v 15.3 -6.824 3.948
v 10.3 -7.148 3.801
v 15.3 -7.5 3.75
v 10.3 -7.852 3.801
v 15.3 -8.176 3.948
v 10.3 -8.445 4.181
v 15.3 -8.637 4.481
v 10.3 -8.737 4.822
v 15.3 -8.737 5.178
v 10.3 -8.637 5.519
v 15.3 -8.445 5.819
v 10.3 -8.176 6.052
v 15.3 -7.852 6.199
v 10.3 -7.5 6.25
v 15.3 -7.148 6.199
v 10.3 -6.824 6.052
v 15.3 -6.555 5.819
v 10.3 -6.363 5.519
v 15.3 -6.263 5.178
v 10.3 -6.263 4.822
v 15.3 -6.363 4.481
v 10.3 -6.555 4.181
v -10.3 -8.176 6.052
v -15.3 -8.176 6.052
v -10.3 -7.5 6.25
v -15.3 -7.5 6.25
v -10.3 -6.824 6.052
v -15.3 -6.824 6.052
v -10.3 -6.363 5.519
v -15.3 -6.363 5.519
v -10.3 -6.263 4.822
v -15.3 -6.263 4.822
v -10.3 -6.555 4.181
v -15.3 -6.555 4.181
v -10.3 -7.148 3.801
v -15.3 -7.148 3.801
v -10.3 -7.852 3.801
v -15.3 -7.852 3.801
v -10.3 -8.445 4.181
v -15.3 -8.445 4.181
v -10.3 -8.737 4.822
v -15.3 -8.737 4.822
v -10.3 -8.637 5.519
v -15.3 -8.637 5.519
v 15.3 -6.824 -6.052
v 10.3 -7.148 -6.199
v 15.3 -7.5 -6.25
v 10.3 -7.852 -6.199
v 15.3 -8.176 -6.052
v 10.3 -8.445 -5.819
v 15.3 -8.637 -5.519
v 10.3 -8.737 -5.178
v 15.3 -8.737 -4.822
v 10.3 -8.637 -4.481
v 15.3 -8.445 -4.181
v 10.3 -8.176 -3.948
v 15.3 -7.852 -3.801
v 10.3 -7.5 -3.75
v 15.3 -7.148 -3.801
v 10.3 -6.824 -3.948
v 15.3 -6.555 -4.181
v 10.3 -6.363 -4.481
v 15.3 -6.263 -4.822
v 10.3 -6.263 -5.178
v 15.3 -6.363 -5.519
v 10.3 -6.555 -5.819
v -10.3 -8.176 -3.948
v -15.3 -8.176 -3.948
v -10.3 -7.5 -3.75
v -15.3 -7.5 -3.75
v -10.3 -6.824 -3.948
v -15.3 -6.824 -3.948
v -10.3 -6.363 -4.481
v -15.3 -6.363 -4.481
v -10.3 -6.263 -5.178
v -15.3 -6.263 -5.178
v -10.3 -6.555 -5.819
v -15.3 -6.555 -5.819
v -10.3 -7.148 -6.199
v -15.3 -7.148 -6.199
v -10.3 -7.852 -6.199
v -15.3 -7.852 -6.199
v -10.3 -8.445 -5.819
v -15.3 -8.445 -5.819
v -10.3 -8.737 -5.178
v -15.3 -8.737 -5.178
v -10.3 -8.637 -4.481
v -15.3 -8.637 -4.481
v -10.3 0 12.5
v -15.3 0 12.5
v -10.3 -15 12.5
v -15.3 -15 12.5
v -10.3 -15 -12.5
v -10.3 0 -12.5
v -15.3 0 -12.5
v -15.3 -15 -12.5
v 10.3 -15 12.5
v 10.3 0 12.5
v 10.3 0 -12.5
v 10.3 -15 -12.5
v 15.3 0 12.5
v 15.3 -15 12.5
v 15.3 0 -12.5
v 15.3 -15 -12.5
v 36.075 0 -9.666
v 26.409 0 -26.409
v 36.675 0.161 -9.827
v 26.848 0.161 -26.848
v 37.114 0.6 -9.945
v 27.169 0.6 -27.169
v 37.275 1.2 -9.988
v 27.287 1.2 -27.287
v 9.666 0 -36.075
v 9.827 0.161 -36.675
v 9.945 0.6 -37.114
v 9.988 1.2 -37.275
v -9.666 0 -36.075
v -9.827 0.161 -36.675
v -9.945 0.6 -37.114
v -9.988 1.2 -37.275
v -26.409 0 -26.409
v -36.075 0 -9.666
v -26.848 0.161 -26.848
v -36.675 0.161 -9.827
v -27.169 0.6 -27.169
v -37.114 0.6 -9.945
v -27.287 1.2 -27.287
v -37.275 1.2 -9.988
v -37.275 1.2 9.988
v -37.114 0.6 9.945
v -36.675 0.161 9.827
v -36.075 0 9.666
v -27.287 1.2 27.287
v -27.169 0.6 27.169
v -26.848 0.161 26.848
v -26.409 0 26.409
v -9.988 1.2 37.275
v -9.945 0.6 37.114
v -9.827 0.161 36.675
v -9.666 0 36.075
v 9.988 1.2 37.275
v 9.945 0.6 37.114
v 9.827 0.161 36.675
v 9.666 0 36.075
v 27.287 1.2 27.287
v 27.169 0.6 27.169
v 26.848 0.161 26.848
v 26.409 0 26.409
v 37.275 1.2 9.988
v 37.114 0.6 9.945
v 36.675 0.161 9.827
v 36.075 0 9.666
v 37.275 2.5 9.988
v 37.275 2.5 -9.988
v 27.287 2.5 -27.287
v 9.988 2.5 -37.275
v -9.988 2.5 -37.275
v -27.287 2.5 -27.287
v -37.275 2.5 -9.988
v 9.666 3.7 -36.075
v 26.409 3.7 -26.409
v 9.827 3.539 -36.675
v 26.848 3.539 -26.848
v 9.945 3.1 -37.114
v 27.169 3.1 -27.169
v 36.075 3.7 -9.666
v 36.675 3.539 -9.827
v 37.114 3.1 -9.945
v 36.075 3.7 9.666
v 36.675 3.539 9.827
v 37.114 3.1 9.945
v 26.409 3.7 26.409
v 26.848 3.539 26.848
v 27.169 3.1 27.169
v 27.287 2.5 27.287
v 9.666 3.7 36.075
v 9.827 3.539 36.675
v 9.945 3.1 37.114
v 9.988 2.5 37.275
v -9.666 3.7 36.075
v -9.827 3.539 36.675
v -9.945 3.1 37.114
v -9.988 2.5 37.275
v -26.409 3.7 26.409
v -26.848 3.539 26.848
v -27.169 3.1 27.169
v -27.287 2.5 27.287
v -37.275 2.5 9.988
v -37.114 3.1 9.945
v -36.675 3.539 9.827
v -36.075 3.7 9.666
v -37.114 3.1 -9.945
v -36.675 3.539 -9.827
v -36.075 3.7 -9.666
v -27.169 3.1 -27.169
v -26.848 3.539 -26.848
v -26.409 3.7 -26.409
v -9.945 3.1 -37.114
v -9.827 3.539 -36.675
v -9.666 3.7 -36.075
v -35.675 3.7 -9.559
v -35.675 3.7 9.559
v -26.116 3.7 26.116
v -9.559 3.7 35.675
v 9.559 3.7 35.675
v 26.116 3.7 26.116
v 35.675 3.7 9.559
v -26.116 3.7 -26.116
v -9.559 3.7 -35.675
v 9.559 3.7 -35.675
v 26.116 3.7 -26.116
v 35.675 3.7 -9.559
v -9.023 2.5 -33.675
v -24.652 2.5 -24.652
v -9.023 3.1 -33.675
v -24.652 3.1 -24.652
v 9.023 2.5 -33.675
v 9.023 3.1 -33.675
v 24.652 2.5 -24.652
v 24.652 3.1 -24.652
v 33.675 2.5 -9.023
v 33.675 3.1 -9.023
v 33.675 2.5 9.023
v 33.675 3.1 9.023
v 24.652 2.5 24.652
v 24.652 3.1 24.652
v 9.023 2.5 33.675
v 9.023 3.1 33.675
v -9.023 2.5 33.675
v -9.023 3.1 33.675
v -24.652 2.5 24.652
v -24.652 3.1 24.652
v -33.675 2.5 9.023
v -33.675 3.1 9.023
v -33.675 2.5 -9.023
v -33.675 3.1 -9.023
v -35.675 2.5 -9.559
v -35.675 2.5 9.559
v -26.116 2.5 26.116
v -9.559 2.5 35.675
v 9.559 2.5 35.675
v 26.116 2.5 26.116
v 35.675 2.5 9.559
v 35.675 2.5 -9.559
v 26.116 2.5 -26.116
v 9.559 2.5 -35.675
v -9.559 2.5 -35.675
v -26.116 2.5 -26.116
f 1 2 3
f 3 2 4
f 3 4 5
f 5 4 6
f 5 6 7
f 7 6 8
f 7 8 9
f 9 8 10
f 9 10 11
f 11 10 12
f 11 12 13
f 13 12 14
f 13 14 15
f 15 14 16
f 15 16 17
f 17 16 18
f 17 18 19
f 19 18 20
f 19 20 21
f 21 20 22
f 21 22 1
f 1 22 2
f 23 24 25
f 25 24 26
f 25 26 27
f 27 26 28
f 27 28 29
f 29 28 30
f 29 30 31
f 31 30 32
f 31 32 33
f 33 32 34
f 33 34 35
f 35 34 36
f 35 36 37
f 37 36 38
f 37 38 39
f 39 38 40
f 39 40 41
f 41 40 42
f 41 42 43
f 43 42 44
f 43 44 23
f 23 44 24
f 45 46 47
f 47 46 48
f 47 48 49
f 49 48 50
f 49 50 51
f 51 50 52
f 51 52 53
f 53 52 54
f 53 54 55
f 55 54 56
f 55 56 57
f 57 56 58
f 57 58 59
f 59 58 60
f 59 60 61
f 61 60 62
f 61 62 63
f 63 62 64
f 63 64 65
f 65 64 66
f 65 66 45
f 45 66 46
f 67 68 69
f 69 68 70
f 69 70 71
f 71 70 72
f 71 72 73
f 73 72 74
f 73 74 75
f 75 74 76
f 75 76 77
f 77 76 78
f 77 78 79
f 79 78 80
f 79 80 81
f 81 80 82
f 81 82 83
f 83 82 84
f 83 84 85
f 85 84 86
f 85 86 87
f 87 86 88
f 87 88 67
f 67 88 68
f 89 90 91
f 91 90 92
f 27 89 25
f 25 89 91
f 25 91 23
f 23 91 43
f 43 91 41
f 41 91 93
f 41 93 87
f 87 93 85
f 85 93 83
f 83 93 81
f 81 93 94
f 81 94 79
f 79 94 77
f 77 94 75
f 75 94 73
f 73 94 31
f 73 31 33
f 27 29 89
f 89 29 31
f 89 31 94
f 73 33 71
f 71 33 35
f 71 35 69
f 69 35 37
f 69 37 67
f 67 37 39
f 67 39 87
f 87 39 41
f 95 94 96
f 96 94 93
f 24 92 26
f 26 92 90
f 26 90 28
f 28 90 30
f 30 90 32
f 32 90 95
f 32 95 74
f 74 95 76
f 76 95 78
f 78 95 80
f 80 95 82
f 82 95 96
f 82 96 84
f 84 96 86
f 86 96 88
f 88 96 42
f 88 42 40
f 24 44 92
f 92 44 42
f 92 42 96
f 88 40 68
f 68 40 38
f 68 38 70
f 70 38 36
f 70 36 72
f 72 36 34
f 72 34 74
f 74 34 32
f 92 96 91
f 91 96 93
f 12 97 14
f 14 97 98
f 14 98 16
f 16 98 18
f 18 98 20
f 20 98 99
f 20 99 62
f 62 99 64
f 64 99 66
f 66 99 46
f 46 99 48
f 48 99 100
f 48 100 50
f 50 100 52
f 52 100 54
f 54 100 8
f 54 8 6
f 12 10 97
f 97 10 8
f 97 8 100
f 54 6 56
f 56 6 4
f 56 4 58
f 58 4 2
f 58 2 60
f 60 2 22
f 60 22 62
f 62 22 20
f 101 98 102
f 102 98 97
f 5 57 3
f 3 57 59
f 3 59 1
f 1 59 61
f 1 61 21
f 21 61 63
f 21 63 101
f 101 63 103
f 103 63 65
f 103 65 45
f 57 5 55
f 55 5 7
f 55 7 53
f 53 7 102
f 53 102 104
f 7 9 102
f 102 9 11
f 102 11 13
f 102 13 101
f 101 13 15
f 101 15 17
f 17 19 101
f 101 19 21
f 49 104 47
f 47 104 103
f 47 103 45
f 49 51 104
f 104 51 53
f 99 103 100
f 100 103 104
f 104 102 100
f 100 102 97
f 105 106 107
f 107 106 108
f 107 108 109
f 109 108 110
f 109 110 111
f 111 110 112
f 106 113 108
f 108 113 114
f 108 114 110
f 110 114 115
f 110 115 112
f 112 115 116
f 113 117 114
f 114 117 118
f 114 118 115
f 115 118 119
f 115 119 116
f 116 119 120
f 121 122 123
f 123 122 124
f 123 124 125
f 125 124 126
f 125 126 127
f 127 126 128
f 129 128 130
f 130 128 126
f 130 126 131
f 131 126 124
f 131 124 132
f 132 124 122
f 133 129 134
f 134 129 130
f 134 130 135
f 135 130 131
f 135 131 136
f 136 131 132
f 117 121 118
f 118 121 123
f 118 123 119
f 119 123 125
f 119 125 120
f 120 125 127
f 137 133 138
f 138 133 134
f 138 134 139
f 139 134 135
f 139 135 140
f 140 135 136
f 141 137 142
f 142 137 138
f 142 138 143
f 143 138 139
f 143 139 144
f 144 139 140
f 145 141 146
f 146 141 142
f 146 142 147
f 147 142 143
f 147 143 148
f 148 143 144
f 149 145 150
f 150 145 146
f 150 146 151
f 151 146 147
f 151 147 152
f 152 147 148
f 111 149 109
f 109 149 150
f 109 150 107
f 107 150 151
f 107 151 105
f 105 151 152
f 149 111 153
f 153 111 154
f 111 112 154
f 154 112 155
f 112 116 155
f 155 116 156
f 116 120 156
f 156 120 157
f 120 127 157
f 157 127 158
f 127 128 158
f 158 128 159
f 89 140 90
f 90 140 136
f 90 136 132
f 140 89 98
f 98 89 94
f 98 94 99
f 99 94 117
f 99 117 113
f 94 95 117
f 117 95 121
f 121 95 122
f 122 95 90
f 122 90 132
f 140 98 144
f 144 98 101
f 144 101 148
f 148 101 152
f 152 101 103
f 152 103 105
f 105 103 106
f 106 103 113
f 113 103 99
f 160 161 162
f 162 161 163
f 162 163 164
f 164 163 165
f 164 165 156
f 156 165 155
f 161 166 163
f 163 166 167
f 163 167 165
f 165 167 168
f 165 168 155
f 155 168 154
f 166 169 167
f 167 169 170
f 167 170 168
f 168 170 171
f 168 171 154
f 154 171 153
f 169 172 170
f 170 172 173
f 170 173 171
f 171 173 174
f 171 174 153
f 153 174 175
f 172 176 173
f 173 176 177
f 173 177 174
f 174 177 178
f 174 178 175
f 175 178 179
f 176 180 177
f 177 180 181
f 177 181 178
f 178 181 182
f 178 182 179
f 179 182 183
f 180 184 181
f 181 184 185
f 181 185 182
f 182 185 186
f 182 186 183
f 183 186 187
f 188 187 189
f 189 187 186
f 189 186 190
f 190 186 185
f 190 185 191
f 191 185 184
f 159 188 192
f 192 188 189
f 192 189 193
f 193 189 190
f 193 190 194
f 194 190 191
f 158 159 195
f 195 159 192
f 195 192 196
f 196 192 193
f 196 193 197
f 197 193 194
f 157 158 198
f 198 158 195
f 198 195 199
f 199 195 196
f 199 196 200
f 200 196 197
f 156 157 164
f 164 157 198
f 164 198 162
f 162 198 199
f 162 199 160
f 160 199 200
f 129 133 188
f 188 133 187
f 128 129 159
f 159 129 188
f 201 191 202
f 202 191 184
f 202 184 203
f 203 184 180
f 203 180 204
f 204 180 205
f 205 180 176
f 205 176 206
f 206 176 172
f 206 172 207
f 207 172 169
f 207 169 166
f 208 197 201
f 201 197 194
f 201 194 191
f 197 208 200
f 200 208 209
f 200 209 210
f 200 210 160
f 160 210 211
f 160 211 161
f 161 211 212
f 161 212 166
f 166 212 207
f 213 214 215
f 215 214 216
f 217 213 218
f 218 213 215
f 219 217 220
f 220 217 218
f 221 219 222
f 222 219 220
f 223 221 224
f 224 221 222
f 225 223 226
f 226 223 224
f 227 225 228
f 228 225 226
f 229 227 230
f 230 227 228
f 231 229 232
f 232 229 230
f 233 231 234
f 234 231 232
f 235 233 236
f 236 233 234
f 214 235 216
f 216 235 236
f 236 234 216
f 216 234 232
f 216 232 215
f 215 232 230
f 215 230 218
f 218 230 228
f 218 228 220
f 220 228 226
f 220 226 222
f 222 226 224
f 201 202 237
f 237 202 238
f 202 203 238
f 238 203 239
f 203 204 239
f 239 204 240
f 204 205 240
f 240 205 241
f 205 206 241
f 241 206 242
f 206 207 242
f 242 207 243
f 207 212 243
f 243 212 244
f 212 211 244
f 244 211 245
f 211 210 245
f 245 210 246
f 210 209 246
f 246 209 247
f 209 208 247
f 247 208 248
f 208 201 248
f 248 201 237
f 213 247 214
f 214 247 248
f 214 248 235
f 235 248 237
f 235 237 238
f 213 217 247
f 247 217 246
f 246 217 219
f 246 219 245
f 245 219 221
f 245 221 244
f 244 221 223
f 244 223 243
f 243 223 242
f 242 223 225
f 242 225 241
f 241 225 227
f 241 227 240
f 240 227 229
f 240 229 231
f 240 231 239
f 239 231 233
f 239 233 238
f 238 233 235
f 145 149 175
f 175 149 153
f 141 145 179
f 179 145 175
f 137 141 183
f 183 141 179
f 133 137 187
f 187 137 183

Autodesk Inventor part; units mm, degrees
ref_plane "YZ Plane" through (0, 0, 0) normal (1, 0, 0) x (0, 1, 0)
ref_plane "XZ Plane" through (0, 0, 0) normal (0, 1, 0) x (-1, 0, 0)
ref_plane "XY Plane" through (0, 0, 0) normal (0, 0, 1) x (1, 0, 0)
sketch "스케치1" plane through (0, 0, 0) normal (0, 1, 0) x (-1, 0, 0)
  line L0 (24.9446, -24.9446) -> (9.1304, -34.075)
  line L1 (9.1304, -34.075) -> (-9.1304, -34.075)
  line L2 (-9.1304, -34.075) -> (-24.9446, -24.9446)
  line L3 (-24.9446, -24.9446) -> (-34.075, -9.1304)
  line L4 (-34.075, -9.1304) -> (-34.075, 9.1304)
  line L5 (-34.075, 9.1304) -> (-24.9446, 24.9446)
  line L6 (-24.9446, 24.9446) -> (-9.1304, 34.075)
  line L7 (-9.1304, 34.075) -> (9.1304, 34.075)
  line L8 (9.1304, 34.075) -> (24.9446, 24.9446)
  line L9 (24.9446, 24.9446) -> (34.075, 9.1304)
  line L10 (34.075, 9.1304) -> (34.075, -9.1304)
  line L11 (34.075, -9.1304) -> (24.9446, -24.9446)
  line L12 (9.9878, -37.275) -> (-9.9878, -37.275)
  line L13 (-9.9878, -37.275) -> (-27.2872, -27.2872)
  line L14 (-27.2872, -27.2872) -> (-37.275, -9.9878)
  line L15 (-37.275, -9.9878) -> (-37.275, 9.9878)
  line L16 (-37.275, 9.9878) -> (-27.2872, 27.2872)
  line L17 (-27.2872, 27.2872) -> (-9.9878, 37.275)
  line L18 (-9.9878, 37.275) -> (9.9878, 37.275)
  line L19 (9.9878, 37.275) -> (27.2872, 27.2872)
  line L20 (27.2872, 27.2872) -> (37.275, 9.9878)
  line L21 (37.275, 9.9878) -> (37.275, -9.9878)
  line L22 (37.275, -9.9878) -> (27.2872, -27.2872)
  line L23 (27.2872, -27.2872) -> (9.9878, -37.275)
  point P0 (0, 0)
  point P1 (0, 0)
  point P2 (0, 0)
  dimension "d0" = 70.554
  dimension "d1" = 3.2
extrude "돌출1" add sketch "스케치1" along normal blind 3.7 contours L0 L1 L2 L3 L4 L5 L6 L7 L8 L9 L10 L11 | L12 L13 L14 L15 L16 L17 L18 L19 L20 L21 L22 L23
sketch "스케치2" plane through (0, 3.7, 0) normal (0, 1, 0) x (1, 0, 0)
  line L0 (-9.5591, 35.675) -> (9.5591, 35.675)
  line L1 (9.5591, 35.675) -> (26.1159, 26.1159)
  line L2 (26.1159, 26.1159) -> (35.675, 9.5591)
  line L3 (35.675, 9.5591) -> (35.675, -9.5591)
  line L4 (35.675, -9.5591) -> (26.1159, -26.1159)
  line L5 (26.1159, -26.1159) -> (9.5591, -35.675)
  line L6 (9.5591, -35.675) -> (-9.5591, -35.675)
  line L7 (-9.5591, -35.675) -> (-26.1159, -26.1159)
  line L8 (-26.1159, -26.1159) -> (-35.675, -9.5591)
  line L9 (-35.675, -9.5591) -> (-35.675, 9.5591)
  line L10 (-35.675, 9.5591) -> (-26.1159, 26.1159)
  line L11 (-26.1159, 26.1159) -> (-9.5591, 35.675)
  line L12 (9.9878, 37.275) -> (-9.9878, 37.275) projected
  point P0 (0, 0)
  point P1 (0, 0)
  point P2 (0, 35.675)
  dimension "d4" = 1.6
extrude "돌출2" cut sketch "스케치2" against normal blind 1.2
sketch "스케치3" plane through (0, 2.5, 0) normal (0, 1, 0) x (1, 0, 0)
  line L0 (-9.0232, 33.675) -> (9.0232, 33.675)
  line L1 (9.0232, 33.675) -> (24.6518, 24.6518)
  line L2 (24.6518, 24.6518) -> (33.675, 9.0232)
  line L3 (33.675, 9.0232) -> (33.675, -9.0232)
  line L4 (33.675, -9.0232) -> (24.6518, -24.6518)
  line L5 (24.6518, -24.6518) -> (9.0232, -33.675)
  line L6 (9.0232, -33.675) -> (-9.0232, -33.675)
  line L7 (-9.0232, -33.675) -> (-24.6518, -24.6518)
  line L8 (-24.6518, -24.6518) -> (-33.675, -9.0232)
  line L9 (-33.675, -9.0232) -> (-33.675, 9.0232)
  line L10 (-33.675, 9.0232) -> (-24.6518, 24.6518)
  line L11 (-24.6518, 24.6518) -> (-9.0232, 33.675)
  line L12 (-9.5591, 35.675) -> (9.5591, 35.675) projected
  point P0 (0, 0)
  point P1 (0, 0)
  dimension "d7" = 2
extrude "돌출3" add sketch "스케치3" along normal blind 0.6
fillet "모깎기1" radius 1.2 24 edges at (-18.6375, 3.7, 32.2811) (-32.2811, 3.7, 18.6375) (-37.275, 3.7, 0) (0, 3.7, 37.275) (18.6375, 3.7, 32.2811) (32.2811, 3.7, 18.6375) (37.275, 3.7, 0) (32.2811, 3.7, -18.6375) (18.6375, 3.7, -32.2811) (0, 3.7, -37.275) (-18.6375, 3.7, -32.2811) (-32.2811, 3.7, -18.6375) (-37.275, 0, 0) (-32.2811, 0, 18.6375) (-18.6375, 0, 32.2811) (0, 0, 37.275) (18.6375, 0, 32.2811) (32.2811, 0, 18.6375) (37.275, 0, 0) (32.2811, 0, -18.6375) (18.6375, 0, -32.2811) (0, 0, -37.275) (-18.6375, 0, -32.2811) (-32.2811, 0, -18.6375)
sketch "스케치10" plane through (0, 0, 0) normal (0, -1, 0) x (1, 0, 0)
  line L0 (10.3, 12.5) -> (15.3, 12.5)
  line L1 (15.3, 12.5) -> (15.3, -12.5)
  line L2 (15.3, -12.5) -> (10.3, -12.5)
  line L3 (10.3, -12.5) -> (10.3, 12.5)
  line L4 (10.3, 12.5) -> (15.3, -12.5) construction
  line L5 (15.3, 12.5) -> (10.3, -12.5) construction
  line L6 (0, 0) -> (0, -4.638)
  line L7 (-10.3, 12.5) -> (-15.3, 12.5)
  line L8 (-15.3, 12.5) -> (-15.3, -12.5)
  line L9 (-15.3, -12.5) -> (-10.3, -12.5)
  line L10 (-10.3, -12.5) -> (-10.3, 12.5)
  line L11 (-10.3, 12.5) -> (-15.3, -12.5) construction
  line L12 (-15.3, 12.5) -> (-10.3, -12.5) construction
  point P0 (12.8, 0)
  point P1 (-12.8, 0)
  dimension "d50" = 5
  dimension "d51" = 25
  dimension "d52" = 10.3
extrude "돌출7" add sketch "스케치10" along normal blind 15
sketch "스케치11" plane through (15.3, 0, 12.5) normal (1, 0, 0) x (0, 0, -1)
  circle A0 centre (7.5, -7.5) radius 1.25
  line L0 (2.8337, 0) -> (22.1663, 0) projected
  line L1 (12.5, 0) -> (12.5, -3.2899)
  circle A1 centre (17.5, -7.5) radius 1.25
  point P0 (12.5, 0)
  dimension "d55" = 2.5
  dimension "d56" = 7.5
  dimension "d57" = 5
extrude "돌출8" cut sketch "스케치11" against normal up to surface (30.6 mm away)
equation "\"d38\" = 55deg"
properties part number "OV-PAM_n_12_bottom"
